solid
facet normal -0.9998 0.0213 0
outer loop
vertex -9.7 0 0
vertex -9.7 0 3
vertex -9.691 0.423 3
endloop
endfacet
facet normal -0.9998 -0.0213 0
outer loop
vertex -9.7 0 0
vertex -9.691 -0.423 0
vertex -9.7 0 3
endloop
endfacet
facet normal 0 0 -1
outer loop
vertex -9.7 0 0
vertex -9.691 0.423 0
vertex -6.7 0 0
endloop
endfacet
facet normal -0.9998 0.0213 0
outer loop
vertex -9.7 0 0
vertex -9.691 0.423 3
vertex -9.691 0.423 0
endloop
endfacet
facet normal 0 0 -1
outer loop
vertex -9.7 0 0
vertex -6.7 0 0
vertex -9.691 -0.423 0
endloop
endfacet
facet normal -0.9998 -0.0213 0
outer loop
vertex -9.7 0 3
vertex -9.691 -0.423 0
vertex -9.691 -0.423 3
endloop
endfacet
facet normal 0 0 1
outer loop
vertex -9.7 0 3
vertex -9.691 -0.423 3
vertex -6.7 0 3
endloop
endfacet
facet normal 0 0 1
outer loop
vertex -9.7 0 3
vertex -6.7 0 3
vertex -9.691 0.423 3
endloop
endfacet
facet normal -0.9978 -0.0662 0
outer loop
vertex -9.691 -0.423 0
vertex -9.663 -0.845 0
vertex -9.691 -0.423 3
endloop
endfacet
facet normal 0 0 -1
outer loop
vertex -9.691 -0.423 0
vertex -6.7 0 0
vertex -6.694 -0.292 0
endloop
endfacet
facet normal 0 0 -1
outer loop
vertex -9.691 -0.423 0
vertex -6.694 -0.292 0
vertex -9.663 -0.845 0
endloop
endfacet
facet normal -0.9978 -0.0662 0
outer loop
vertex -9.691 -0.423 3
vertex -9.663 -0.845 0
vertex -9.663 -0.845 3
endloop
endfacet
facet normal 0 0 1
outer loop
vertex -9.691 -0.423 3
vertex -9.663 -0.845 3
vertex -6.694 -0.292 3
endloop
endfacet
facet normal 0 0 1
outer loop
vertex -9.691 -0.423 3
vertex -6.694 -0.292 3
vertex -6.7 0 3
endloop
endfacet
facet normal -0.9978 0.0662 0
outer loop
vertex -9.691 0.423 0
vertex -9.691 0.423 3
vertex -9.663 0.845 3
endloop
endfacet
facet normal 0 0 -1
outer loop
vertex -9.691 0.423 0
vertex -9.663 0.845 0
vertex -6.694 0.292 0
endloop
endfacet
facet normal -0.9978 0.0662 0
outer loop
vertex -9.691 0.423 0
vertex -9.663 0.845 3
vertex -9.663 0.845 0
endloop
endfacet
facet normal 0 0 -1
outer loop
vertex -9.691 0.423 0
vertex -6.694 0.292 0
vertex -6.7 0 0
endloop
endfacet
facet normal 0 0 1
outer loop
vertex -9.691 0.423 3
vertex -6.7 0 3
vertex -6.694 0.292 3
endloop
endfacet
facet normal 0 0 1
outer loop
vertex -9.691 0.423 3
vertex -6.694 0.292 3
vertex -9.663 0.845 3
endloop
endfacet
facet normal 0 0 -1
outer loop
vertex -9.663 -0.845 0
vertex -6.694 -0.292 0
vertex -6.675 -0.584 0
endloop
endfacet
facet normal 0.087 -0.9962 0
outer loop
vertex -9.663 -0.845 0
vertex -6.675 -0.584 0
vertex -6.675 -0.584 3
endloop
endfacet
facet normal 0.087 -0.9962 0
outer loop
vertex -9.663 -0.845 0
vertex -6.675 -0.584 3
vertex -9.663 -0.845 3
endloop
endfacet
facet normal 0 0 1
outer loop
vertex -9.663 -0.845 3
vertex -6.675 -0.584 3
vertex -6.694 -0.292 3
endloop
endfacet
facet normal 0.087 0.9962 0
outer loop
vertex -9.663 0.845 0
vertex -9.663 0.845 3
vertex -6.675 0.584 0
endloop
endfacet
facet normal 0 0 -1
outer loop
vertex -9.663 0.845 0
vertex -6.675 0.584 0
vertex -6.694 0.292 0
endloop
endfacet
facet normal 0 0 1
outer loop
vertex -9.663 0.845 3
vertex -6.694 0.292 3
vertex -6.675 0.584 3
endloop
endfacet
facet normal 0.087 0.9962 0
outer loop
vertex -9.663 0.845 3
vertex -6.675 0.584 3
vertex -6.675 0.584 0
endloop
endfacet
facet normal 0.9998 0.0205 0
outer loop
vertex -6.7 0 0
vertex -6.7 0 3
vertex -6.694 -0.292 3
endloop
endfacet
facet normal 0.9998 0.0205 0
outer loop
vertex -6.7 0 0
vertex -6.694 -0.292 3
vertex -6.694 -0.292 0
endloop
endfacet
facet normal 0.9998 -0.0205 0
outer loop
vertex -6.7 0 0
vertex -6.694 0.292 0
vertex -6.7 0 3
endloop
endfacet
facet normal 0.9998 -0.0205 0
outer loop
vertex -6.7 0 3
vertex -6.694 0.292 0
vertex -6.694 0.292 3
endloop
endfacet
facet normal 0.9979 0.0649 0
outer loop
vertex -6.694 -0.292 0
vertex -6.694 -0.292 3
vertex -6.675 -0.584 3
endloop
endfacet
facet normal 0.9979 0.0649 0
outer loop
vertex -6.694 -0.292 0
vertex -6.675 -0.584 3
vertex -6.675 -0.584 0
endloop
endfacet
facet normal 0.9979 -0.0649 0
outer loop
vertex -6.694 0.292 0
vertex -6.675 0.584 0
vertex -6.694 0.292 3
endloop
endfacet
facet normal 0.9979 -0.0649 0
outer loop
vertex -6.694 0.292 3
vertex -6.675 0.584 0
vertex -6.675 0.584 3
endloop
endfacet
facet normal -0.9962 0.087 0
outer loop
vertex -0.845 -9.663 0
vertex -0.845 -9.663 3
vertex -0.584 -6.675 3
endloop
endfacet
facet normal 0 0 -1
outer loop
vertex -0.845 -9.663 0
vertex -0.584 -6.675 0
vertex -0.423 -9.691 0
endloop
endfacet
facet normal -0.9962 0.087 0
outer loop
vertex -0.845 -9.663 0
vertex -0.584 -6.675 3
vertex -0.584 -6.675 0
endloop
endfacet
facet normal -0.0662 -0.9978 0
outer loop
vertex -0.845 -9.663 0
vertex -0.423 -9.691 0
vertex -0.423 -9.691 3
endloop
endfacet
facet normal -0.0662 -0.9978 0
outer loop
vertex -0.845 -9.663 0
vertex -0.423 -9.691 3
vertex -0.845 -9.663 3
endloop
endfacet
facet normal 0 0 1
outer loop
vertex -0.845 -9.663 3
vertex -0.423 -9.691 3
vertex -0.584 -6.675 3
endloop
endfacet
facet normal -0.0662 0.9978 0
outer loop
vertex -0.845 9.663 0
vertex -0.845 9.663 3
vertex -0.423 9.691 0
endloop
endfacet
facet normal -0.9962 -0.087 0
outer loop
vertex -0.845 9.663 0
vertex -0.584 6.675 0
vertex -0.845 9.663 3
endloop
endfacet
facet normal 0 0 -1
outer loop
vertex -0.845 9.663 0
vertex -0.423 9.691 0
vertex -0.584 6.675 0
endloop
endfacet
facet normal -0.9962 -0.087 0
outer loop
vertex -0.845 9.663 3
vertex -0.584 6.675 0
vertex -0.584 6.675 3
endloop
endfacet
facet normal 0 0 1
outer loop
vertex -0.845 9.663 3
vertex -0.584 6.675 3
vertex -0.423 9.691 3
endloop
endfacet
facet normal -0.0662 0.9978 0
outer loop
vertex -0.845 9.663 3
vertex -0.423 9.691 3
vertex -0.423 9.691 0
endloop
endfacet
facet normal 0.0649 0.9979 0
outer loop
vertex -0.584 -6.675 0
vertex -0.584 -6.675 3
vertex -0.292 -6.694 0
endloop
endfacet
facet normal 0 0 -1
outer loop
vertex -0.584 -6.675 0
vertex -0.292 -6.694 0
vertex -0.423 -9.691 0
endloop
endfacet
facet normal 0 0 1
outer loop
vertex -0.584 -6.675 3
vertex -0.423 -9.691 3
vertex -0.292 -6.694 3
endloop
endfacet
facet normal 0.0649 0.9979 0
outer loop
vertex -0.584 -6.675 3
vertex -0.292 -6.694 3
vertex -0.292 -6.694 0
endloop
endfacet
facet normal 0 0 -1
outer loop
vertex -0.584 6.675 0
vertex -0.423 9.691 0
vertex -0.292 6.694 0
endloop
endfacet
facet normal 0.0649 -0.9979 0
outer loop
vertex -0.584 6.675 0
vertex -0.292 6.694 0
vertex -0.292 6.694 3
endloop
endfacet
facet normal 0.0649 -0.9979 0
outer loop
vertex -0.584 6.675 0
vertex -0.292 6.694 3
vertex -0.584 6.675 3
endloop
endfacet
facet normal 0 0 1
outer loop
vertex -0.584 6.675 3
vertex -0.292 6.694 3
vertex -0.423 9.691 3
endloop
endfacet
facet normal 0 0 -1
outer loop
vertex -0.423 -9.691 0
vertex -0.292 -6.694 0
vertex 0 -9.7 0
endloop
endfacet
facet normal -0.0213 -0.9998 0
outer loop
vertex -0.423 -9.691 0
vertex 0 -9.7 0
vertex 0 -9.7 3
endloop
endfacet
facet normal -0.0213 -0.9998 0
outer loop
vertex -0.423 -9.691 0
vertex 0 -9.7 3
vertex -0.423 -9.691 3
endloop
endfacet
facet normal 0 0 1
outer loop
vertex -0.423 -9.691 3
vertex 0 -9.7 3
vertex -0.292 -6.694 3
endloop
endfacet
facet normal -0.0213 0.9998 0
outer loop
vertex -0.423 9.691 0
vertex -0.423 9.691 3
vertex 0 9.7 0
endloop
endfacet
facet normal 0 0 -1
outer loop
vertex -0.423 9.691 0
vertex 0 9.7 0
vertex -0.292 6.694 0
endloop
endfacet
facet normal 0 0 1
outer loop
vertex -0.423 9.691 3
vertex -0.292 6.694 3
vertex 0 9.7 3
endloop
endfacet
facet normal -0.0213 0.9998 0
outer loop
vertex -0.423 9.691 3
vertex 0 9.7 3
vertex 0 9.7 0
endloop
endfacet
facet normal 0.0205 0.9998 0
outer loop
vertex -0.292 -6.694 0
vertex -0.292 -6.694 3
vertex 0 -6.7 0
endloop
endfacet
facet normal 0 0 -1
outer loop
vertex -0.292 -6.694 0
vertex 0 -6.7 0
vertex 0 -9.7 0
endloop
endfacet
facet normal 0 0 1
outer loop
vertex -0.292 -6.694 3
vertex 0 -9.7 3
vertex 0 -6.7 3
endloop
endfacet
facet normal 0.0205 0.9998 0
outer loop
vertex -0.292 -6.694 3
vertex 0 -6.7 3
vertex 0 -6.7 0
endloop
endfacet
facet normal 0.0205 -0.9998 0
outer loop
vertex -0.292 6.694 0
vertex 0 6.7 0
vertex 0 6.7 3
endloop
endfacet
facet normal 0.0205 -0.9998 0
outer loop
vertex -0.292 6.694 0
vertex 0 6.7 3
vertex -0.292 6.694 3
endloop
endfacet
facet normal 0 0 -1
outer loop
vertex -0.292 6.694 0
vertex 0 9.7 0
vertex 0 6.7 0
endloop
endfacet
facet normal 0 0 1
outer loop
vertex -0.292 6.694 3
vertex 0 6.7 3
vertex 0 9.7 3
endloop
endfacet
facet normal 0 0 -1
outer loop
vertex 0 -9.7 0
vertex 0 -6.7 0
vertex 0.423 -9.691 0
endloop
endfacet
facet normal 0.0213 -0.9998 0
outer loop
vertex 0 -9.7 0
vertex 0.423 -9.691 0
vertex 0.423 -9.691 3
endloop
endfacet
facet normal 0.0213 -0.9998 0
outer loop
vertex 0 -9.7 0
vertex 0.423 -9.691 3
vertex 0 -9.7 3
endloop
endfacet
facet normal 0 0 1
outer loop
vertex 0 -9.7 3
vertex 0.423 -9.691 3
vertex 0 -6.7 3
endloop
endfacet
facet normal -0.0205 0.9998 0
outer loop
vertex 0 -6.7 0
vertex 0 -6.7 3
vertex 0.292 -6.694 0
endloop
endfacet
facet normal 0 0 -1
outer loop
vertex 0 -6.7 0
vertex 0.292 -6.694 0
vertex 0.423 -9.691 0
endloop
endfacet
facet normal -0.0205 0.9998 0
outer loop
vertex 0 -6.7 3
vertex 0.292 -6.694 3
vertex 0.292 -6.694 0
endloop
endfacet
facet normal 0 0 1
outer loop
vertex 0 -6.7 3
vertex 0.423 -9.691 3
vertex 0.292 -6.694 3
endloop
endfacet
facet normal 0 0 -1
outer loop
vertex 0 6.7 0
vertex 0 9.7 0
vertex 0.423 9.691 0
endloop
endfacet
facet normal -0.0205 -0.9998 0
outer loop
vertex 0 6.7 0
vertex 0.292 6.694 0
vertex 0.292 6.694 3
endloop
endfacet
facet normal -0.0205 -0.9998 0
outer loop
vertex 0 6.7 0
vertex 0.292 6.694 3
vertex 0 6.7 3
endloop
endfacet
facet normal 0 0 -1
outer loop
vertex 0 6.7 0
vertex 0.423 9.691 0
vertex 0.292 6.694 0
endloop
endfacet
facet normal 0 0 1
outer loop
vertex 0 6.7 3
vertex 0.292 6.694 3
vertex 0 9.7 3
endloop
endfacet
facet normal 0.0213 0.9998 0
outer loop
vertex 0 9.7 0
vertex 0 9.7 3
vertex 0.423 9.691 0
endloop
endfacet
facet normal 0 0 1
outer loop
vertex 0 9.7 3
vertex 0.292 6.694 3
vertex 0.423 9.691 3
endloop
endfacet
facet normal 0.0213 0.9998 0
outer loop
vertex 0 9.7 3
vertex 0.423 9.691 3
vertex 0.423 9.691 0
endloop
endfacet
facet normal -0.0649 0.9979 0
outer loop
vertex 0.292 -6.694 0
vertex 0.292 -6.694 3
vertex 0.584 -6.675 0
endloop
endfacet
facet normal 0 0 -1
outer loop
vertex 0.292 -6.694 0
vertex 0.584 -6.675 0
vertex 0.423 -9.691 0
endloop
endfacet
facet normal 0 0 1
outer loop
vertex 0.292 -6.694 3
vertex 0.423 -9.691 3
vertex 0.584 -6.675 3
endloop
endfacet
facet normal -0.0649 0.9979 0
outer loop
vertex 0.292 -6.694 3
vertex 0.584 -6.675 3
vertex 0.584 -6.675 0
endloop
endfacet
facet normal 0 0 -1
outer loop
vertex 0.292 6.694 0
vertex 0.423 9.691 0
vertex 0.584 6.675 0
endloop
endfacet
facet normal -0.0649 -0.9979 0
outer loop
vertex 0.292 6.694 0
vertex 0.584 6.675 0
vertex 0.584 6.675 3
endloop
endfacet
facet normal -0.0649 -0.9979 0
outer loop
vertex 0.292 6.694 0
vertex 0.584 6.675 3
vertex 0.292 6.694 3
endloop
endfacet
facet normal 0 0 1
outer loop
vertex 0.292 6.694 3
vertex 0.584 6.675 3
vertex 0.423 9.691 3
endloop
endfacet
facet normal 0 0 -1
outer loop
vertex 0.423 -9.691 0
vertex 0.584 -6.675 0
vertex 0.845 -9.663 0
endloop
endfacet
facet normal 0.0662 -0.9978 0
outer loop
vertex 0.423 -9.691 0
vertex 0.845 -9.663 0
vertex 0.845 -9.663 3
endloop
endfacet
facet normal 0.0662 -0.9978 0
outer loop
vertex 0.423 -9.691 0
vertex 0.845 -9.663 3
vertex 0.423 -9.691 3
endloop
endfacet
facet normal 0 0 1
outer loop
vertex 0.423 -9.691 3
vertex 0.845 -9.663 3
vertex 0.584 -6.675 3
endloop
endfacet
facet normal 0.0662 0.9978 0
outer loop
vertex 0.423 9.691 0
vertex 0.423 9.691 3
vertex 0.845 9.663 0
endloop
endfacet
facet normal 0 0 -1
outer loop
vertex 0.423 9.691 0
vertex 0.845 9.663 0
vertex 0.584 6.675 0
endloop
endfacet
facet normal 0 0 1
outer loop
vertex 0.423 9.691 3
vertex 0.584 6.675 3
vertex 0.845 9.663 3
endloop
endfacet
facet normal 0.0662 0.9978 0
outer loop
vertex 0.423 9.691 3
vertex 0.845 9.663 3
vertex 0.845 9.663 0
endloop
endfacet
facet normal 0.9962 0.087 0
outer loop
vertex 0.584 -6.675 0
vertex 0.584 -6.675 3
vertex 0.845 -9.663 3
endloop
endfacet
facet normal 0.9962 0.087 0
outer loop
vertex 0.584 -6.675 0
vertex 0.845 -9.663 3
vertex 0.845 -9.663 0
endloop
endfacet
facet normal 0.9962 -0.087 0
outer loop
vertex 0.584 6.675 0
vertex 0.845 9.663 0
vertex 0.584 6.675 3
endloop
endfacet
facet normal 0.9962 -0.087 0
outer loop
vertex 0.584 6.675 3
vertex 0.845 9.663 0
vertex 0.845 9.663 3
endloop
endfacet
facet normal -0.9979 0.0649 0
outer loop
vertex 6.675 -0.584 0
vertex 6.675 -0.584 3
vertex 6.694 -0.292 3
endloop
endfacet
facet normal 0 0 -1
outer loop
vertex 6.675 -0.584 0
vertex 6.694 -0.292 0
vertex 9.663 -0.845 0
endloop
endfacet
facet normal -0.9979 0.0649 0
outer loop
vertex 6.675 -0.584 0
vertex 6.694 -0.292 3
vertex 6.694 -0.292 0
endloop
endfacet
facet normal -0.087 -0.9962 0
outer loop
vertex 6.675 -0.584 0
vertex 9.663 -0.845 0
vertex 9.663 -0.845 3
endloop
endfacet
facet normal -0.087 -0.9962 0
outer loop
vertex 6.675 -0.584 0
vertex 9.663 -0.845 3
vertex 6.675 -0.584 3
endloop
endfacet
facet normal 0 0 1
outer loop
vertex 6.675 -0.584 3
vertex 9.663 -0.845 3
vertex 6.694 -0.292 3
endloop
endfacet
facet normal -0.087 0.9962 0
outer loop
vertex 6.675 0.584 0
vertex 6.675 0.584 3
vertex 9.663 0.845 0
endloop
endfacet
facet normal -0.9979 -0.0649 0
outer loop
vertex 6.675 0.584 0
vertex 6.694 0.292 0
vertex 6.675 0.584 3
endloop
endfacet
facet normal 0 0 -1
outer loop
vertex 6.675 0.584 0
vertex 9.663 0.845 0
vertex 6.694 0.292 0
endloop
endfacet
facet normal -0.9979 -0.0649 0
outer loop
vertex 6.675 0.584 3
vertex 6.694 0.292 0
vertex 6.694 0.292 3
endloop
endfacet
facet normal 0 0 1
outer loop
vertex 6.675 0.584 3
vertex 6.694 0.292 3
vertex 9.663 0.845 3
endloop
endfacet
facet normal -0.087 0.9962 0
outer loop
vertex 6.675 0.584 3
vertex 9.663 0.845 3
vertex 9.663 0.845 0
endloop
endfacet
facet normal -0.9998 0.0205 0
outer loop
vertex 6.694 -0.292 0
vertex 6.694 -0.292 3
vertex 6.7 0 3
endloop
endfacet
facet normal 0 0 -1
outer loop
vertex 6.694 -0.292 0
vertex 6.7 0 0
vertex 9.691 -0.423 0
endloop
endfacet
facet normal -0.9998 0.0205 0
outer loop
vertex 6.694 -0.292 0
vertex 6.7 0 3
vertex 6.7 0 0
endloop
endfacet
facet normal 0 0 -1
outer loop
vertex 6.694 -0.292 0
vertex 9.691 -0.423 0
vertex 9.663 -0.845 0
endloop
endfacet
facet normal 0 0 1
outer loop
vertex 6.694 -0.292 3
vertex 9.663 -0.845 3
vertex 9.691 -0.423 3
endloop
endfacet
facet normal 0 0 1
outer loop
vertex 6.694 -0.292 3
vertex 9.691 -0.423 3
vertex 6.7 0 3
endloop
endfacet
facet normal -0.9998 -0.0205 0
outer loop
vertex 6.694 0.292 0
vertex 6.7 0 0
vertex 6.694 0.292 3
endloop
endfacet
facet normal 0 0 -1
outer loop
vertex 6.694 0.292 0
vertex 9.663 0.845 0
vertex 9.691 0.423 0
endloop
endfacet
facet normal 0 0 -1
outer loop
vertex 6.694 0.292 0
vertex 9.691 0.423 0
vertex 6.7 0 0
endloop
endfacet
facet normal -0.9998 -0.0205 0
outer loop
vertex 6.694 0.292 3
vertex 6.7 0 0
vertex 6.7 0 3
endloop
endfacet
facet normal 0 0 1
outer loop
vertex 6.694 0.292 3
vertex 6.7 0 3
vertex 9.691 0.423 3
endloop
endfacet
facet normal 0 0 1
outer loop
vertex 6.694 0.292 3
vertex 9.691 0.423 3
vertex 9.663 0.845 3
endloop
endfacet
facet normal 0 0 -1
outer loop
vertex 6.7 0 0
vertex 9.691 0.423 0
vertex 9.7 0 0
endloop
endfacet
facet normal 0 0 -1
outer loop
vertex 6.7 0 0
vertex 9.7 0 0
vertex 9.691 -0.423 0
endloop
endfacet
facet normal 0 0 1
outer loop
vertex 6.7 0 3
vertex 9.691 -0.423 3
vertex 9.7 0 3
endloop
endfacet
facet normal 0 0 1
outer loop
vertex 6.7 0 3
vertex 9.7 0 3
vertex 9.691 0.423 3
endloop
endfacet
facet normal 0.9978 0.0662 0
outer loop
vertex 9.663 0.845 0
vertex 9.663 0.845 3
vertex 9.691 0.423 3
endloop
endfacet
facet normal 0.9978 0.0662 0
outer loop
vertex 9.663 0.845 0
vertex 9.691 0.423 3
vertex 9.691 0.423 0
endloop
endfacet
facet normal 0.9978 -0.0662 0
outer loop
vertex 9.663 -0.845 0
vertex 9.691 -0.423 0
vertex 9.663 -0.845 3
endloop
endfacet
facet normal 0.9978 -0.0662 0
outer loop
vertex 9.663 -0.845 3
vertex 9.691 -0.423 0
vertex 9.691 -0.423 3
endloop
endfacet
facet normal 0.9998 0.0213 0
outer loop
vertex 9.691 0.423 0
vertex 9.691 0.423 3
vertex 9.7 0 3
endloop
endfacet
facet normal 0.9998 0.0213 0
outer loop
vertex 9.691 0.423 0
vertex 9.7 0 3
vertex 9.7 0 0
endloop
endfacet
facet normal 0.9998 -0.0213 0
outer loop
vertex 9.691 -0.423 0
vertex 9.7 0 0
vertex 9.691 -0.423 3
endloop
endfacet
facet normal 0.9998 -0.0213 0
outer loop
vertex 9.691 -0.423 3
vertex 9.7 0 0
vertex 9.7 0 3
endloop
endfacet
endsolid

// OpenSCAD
// Start: lazy_union
default_5_default_5();
// End: lazy_union

// Modules.

// 'PartMaterial undef-default - default 5.0'
module default_5_default_5() {
  // 'None : _combine_solids_and_holes'
  union() {
    // 'default : _combine_solids_and_holes'
    union() {
      // 'cage'
      %color(c=[0.0, 1.0, 0.35, 0.4]) {
        // 'cage : _combine_solids_and_holes'
        union() {
          // 'cage'
          cylinder(h=5.7, r1=8.7, r2=8.7, center=false, $fn=128);
        }
      }
      // ('wing', 0)
      multmatrix(m=[[0.9961946980917455, 0.08715574274765817, 0.0, 0.0], [-0.08715574274765817, 0.9961946980917455, 0.0, 0.0], [0.0, 0.0, 1.0, 0.0], [0.0, 0.0, 0.0, 1.0]]) {
        // "('wing', 0) : _combine_solids_and_holes"
        union() {
          // ('wing', 0)
          polyhedron(points=[[6.699999999999999, 0.0, 0.0], [6.699999999999999, 0.0, 3.0], [9.7, 0.0, 3.0], [9.7, 0.0, 0.0], [6.693623084598446, 0.29224989534775114, 0.0], [6.693623084598446, 0.29224989534775114, 3.0], [9.69076774934402, 0.4231080574437592, 3.0], [9.69076774934402, 0.4231080574437592, 0.0], [6.674504477214694, 0.5839434764093097, 0.0], [6.674504477214694, 0.5839434764093097, 3.0], [9.663088571489931, 0.8454107046522842, 3.0], [9.663088571489931, 0.8454107046522842, 0.0], [6.6426805712045285, 0.8745254878743455, 0.0], [6.6426805712045285, 0.8745254878743455, 3.0], [9.61701515532596, 1.2661040645345, 3.0], [9.61701515532596, 1.2661040645345, 0.0], [6.598211945181793, 1.163442790368433, 0.0], [6.598211945181793, 1.163442790368433, 3.0], [9.552635204218417, 1.6843873233692241, 3.0], [9.552635204218417, 1.6843873233692241, 0.0]], faces=[[0, 4, 5, 1], [1, 5, 6, 2], [2, 6, 7, 3], [3, 7, 4, 0], [4, 8, 9, 5], [5, 9, 10, 6], [6, 10, 11, 7], [7, 11, 8, 4], [8, 12, 13, 9], [9, 13, 14, 10], [10, 14, 15, 11], [11, 15, 12, 8], [12, 16, 17, 13], [13, 17, 18, 14], [14, 18, 19, 15], [15, 19, 16, 12], [0, 1, 2, 3], [19, 18, 17, 16]], convexity=10);
        }
      }
      // ('wing', 1)
      multmatrix(m=[[0.08715574274765814, -0.9961946980917455, 0.0, 0.0], [0.9961946980917455, 0.08715574274765814, 0.0, 0.0], [0.0, 0.0, 1.0, 0.0], [0.0, 0.0, 0.0, 1.0]]) {
        // "('wing', 1) : _combine_solids_and_holes"
        union() {
          // ('wing', 1)
          polyhedron(points=[[6.699999999999999, 0.0, 0.0], [6.699999999999999, 0.0, 3.0], [9.7, 0.0, 3.0], [9.7, 0.0, 0.0], [6.693623084598446, 0.29224989534775114, 0.0], [6.693623084598446, 0.29224989534775114, 3.0], [9.69076774934402, 0.4231080574437592, 3.0], [9.69076774934402, 0.4231080574437592, 0.0], [6.674504477214694, 0.5839434764093097, 0.0], [6.674504477214694, 0.5839434764093097, 3.0], [9.663088571489931, 0.8454107046522842, 3.0], [9.663088571489931, 0.8454107046522842, 0.0], [6.6426805712045285, 0.8745254878743455, 0.0], [6.6426805712045285, 0.8745254878743455, 3.0], [9.61701515532596, 1.2661040645345, 3.0], [9.61701515532596, 1.2661040645345, 0.0], [6.598211945181793, 1.163442790368433, 0.0], [6.598211945181793, 1.163442790368433, 3.0], [9.552635204218417, 1.6843873233692241, 3.0], [9.552635204218417, 1.6843873233692241, 0.0]], faces=[[0, 4, 5, 1], [1, 5, 6, 2], [2, 6, 7, 3], [3, 7, 4, 0], [4, 8, 9, 5], [5, 9, 10, 6], [6, 10, 11, 7], [7, 11, 8, 4], [8, 12, 13, 9], [9, 13, 14, 10], [10, 14, 15, 11], [11, 15, 12, 8], [12, 16, 17, 13], [13, 17, 18, 14], [14, 18, 19, 15], [15, 19, 16, 12], [0, 1, 2, 3], [19, 18, 17, 16]], convexity=10);
        }
      }
      // ('wing', 2)
      multmatrix(m=[[-0.9961946980917455, -0.08715574274765864, 0.0, 0.0], [0.08715574274765864, -0.9961946980917455, 0.0, 0.0], [0.0, 0.0, 1.0, 0.0], [0.0, 0.0, 0.0, 1.0]]) {
        // "('wing', 2) : _combine_solids_and_holes"
        union() {
          // ('wing', 2)
          polyhedron(points=[[6.699999999999999, 0.0, 0.0], [6.699999999999999, 0.0, 3.0], [9.7, 0.0, 3.0], [9.7, 0.0, 0.0], [6.693623084598446, 0.29224989534775114, 0.0], [6.693623084598446, 0.29224989534775114, 3.0], [9.69076774934402, 0.4231080574437592, 3.0], [9.69076774934402, 0.4231080574437592, 0.0], [6.674504477214694, 0.5839434764093097, 0.0], [6.674504477214694, 0.5839434764093097, 3.0], [9.663088571489931, 0.8454107046522842, 3.0], [9.663088571489931, 0.8454107046522842, 0.0], [6.6426805712045285, 0.8745254878743455, 0.0], [6.6426805712045285, 0.8745254878743455, 3.0], [9.61701515532596, 1.2661040645345, 3.0], [9.61701515532596, 1.2661040645345, 0.0], [6.598211945181793, 1.163442790368433, 0.0], [6.598211945181793, 1.163442790368433, 3.0], [9.552635204218417, 1.6843873233692241, 3.0], [9.552635204218417, 1.6843873233692241, 0.0]], faces=[[0, 4, 5, 1], [1, 5, 6, 2], [2, 6, 7, 3], [3, 7, 4, 0], [4, 8, 9, 5], [5, 9, 10, 6], [6, 10, 11, 7], [7, 11, 8, 4], [8, 12, 13, 9], [9, 13, 14, 10], [10, 14, 15, 11], [11, 15, 12, 8], [12, 16, 17, 13], [13, 17, 18, 14], [14, 18, 19, 15], [15, 19, 16, 12], [0, 1, 2, 3], [19, 18, 17, 16]], convexity=10);
        }
      }
      // ('wing', 3)
      multmatrix(m=[[-0.08715574274765825, 0.9961946980917455, 0.0, 0.0], [-0.9961946980917455, -0.08715574274765825, 0.0, 0.0], [0.0, 0.0, 1.0, 0.0], [0.0, 0.0, 0.0, 1.0]]) {
        // "('wing', 3) : _combine_solids_and_holes"
        union() {
          // ('wing', 3)
          polyhedron(points=[[6.699999999999999, 0.0, 0.0], [6.699999999999999, 0.0, 3.0], [9.7, 0.0, 3.0], [9.7, 0.0, 0.0], [6.693623084598446, 0.29224989534775114, 0.0], [6.693623084598446, 0.29224989534775114, 3.0], [9.69076774934402, 0.4231080574437592, 3.0], [9.69076774934402, 0.4231080574437592, 0.0], [6.674504477214694, 0.5839434764093097, 0.0], [6.674504477214694, 0.5839434764093097, 3.0], [9.663088571489931, 0.8454107046522842, 3.0], [9.663088571489931, 0.8454107046522842, 0.0], [6.6426805712045285, 0.8745254878743455, 0.0], [6.6426805712045285, 0.8745254878743455, 3.0], [9.61701515532596, 1.2661040645345, 3.0], [9.61701515532596, 1.2661040645345, 0.0], [6.598211945181793, 1.163442790368433, 0.0], [6.598211945181793, 1.163442790368433, 3.0], [9.552635204218417, 1.6843873233692241, 3.0], [9.552635204218417, 1.6843873233692241, 0.0]], faces=[[0, 4, 5, 1], [1, 5, 6, 2], [2, 6, 7, 3], [3, 7, 4, 0], [4, 8, 9, 5], [5, 9, 10, 6], [6, 10, 11, 7], [7, 11, 8, 4], [8, 12, 13, 9], [9, 13, 14, 10], [10, 14, 15, 11], [11, 15, 12, 8], [12, 16, 17, 13], [13, 17, 18, 14], [14, 18, 19, 15], [15, 19, 16, 12], [0, 1, 2, 3], [19, 18, 17, 16]], convexity=10);
        }
      }
    }
  }
} // end module default_5_default_5
